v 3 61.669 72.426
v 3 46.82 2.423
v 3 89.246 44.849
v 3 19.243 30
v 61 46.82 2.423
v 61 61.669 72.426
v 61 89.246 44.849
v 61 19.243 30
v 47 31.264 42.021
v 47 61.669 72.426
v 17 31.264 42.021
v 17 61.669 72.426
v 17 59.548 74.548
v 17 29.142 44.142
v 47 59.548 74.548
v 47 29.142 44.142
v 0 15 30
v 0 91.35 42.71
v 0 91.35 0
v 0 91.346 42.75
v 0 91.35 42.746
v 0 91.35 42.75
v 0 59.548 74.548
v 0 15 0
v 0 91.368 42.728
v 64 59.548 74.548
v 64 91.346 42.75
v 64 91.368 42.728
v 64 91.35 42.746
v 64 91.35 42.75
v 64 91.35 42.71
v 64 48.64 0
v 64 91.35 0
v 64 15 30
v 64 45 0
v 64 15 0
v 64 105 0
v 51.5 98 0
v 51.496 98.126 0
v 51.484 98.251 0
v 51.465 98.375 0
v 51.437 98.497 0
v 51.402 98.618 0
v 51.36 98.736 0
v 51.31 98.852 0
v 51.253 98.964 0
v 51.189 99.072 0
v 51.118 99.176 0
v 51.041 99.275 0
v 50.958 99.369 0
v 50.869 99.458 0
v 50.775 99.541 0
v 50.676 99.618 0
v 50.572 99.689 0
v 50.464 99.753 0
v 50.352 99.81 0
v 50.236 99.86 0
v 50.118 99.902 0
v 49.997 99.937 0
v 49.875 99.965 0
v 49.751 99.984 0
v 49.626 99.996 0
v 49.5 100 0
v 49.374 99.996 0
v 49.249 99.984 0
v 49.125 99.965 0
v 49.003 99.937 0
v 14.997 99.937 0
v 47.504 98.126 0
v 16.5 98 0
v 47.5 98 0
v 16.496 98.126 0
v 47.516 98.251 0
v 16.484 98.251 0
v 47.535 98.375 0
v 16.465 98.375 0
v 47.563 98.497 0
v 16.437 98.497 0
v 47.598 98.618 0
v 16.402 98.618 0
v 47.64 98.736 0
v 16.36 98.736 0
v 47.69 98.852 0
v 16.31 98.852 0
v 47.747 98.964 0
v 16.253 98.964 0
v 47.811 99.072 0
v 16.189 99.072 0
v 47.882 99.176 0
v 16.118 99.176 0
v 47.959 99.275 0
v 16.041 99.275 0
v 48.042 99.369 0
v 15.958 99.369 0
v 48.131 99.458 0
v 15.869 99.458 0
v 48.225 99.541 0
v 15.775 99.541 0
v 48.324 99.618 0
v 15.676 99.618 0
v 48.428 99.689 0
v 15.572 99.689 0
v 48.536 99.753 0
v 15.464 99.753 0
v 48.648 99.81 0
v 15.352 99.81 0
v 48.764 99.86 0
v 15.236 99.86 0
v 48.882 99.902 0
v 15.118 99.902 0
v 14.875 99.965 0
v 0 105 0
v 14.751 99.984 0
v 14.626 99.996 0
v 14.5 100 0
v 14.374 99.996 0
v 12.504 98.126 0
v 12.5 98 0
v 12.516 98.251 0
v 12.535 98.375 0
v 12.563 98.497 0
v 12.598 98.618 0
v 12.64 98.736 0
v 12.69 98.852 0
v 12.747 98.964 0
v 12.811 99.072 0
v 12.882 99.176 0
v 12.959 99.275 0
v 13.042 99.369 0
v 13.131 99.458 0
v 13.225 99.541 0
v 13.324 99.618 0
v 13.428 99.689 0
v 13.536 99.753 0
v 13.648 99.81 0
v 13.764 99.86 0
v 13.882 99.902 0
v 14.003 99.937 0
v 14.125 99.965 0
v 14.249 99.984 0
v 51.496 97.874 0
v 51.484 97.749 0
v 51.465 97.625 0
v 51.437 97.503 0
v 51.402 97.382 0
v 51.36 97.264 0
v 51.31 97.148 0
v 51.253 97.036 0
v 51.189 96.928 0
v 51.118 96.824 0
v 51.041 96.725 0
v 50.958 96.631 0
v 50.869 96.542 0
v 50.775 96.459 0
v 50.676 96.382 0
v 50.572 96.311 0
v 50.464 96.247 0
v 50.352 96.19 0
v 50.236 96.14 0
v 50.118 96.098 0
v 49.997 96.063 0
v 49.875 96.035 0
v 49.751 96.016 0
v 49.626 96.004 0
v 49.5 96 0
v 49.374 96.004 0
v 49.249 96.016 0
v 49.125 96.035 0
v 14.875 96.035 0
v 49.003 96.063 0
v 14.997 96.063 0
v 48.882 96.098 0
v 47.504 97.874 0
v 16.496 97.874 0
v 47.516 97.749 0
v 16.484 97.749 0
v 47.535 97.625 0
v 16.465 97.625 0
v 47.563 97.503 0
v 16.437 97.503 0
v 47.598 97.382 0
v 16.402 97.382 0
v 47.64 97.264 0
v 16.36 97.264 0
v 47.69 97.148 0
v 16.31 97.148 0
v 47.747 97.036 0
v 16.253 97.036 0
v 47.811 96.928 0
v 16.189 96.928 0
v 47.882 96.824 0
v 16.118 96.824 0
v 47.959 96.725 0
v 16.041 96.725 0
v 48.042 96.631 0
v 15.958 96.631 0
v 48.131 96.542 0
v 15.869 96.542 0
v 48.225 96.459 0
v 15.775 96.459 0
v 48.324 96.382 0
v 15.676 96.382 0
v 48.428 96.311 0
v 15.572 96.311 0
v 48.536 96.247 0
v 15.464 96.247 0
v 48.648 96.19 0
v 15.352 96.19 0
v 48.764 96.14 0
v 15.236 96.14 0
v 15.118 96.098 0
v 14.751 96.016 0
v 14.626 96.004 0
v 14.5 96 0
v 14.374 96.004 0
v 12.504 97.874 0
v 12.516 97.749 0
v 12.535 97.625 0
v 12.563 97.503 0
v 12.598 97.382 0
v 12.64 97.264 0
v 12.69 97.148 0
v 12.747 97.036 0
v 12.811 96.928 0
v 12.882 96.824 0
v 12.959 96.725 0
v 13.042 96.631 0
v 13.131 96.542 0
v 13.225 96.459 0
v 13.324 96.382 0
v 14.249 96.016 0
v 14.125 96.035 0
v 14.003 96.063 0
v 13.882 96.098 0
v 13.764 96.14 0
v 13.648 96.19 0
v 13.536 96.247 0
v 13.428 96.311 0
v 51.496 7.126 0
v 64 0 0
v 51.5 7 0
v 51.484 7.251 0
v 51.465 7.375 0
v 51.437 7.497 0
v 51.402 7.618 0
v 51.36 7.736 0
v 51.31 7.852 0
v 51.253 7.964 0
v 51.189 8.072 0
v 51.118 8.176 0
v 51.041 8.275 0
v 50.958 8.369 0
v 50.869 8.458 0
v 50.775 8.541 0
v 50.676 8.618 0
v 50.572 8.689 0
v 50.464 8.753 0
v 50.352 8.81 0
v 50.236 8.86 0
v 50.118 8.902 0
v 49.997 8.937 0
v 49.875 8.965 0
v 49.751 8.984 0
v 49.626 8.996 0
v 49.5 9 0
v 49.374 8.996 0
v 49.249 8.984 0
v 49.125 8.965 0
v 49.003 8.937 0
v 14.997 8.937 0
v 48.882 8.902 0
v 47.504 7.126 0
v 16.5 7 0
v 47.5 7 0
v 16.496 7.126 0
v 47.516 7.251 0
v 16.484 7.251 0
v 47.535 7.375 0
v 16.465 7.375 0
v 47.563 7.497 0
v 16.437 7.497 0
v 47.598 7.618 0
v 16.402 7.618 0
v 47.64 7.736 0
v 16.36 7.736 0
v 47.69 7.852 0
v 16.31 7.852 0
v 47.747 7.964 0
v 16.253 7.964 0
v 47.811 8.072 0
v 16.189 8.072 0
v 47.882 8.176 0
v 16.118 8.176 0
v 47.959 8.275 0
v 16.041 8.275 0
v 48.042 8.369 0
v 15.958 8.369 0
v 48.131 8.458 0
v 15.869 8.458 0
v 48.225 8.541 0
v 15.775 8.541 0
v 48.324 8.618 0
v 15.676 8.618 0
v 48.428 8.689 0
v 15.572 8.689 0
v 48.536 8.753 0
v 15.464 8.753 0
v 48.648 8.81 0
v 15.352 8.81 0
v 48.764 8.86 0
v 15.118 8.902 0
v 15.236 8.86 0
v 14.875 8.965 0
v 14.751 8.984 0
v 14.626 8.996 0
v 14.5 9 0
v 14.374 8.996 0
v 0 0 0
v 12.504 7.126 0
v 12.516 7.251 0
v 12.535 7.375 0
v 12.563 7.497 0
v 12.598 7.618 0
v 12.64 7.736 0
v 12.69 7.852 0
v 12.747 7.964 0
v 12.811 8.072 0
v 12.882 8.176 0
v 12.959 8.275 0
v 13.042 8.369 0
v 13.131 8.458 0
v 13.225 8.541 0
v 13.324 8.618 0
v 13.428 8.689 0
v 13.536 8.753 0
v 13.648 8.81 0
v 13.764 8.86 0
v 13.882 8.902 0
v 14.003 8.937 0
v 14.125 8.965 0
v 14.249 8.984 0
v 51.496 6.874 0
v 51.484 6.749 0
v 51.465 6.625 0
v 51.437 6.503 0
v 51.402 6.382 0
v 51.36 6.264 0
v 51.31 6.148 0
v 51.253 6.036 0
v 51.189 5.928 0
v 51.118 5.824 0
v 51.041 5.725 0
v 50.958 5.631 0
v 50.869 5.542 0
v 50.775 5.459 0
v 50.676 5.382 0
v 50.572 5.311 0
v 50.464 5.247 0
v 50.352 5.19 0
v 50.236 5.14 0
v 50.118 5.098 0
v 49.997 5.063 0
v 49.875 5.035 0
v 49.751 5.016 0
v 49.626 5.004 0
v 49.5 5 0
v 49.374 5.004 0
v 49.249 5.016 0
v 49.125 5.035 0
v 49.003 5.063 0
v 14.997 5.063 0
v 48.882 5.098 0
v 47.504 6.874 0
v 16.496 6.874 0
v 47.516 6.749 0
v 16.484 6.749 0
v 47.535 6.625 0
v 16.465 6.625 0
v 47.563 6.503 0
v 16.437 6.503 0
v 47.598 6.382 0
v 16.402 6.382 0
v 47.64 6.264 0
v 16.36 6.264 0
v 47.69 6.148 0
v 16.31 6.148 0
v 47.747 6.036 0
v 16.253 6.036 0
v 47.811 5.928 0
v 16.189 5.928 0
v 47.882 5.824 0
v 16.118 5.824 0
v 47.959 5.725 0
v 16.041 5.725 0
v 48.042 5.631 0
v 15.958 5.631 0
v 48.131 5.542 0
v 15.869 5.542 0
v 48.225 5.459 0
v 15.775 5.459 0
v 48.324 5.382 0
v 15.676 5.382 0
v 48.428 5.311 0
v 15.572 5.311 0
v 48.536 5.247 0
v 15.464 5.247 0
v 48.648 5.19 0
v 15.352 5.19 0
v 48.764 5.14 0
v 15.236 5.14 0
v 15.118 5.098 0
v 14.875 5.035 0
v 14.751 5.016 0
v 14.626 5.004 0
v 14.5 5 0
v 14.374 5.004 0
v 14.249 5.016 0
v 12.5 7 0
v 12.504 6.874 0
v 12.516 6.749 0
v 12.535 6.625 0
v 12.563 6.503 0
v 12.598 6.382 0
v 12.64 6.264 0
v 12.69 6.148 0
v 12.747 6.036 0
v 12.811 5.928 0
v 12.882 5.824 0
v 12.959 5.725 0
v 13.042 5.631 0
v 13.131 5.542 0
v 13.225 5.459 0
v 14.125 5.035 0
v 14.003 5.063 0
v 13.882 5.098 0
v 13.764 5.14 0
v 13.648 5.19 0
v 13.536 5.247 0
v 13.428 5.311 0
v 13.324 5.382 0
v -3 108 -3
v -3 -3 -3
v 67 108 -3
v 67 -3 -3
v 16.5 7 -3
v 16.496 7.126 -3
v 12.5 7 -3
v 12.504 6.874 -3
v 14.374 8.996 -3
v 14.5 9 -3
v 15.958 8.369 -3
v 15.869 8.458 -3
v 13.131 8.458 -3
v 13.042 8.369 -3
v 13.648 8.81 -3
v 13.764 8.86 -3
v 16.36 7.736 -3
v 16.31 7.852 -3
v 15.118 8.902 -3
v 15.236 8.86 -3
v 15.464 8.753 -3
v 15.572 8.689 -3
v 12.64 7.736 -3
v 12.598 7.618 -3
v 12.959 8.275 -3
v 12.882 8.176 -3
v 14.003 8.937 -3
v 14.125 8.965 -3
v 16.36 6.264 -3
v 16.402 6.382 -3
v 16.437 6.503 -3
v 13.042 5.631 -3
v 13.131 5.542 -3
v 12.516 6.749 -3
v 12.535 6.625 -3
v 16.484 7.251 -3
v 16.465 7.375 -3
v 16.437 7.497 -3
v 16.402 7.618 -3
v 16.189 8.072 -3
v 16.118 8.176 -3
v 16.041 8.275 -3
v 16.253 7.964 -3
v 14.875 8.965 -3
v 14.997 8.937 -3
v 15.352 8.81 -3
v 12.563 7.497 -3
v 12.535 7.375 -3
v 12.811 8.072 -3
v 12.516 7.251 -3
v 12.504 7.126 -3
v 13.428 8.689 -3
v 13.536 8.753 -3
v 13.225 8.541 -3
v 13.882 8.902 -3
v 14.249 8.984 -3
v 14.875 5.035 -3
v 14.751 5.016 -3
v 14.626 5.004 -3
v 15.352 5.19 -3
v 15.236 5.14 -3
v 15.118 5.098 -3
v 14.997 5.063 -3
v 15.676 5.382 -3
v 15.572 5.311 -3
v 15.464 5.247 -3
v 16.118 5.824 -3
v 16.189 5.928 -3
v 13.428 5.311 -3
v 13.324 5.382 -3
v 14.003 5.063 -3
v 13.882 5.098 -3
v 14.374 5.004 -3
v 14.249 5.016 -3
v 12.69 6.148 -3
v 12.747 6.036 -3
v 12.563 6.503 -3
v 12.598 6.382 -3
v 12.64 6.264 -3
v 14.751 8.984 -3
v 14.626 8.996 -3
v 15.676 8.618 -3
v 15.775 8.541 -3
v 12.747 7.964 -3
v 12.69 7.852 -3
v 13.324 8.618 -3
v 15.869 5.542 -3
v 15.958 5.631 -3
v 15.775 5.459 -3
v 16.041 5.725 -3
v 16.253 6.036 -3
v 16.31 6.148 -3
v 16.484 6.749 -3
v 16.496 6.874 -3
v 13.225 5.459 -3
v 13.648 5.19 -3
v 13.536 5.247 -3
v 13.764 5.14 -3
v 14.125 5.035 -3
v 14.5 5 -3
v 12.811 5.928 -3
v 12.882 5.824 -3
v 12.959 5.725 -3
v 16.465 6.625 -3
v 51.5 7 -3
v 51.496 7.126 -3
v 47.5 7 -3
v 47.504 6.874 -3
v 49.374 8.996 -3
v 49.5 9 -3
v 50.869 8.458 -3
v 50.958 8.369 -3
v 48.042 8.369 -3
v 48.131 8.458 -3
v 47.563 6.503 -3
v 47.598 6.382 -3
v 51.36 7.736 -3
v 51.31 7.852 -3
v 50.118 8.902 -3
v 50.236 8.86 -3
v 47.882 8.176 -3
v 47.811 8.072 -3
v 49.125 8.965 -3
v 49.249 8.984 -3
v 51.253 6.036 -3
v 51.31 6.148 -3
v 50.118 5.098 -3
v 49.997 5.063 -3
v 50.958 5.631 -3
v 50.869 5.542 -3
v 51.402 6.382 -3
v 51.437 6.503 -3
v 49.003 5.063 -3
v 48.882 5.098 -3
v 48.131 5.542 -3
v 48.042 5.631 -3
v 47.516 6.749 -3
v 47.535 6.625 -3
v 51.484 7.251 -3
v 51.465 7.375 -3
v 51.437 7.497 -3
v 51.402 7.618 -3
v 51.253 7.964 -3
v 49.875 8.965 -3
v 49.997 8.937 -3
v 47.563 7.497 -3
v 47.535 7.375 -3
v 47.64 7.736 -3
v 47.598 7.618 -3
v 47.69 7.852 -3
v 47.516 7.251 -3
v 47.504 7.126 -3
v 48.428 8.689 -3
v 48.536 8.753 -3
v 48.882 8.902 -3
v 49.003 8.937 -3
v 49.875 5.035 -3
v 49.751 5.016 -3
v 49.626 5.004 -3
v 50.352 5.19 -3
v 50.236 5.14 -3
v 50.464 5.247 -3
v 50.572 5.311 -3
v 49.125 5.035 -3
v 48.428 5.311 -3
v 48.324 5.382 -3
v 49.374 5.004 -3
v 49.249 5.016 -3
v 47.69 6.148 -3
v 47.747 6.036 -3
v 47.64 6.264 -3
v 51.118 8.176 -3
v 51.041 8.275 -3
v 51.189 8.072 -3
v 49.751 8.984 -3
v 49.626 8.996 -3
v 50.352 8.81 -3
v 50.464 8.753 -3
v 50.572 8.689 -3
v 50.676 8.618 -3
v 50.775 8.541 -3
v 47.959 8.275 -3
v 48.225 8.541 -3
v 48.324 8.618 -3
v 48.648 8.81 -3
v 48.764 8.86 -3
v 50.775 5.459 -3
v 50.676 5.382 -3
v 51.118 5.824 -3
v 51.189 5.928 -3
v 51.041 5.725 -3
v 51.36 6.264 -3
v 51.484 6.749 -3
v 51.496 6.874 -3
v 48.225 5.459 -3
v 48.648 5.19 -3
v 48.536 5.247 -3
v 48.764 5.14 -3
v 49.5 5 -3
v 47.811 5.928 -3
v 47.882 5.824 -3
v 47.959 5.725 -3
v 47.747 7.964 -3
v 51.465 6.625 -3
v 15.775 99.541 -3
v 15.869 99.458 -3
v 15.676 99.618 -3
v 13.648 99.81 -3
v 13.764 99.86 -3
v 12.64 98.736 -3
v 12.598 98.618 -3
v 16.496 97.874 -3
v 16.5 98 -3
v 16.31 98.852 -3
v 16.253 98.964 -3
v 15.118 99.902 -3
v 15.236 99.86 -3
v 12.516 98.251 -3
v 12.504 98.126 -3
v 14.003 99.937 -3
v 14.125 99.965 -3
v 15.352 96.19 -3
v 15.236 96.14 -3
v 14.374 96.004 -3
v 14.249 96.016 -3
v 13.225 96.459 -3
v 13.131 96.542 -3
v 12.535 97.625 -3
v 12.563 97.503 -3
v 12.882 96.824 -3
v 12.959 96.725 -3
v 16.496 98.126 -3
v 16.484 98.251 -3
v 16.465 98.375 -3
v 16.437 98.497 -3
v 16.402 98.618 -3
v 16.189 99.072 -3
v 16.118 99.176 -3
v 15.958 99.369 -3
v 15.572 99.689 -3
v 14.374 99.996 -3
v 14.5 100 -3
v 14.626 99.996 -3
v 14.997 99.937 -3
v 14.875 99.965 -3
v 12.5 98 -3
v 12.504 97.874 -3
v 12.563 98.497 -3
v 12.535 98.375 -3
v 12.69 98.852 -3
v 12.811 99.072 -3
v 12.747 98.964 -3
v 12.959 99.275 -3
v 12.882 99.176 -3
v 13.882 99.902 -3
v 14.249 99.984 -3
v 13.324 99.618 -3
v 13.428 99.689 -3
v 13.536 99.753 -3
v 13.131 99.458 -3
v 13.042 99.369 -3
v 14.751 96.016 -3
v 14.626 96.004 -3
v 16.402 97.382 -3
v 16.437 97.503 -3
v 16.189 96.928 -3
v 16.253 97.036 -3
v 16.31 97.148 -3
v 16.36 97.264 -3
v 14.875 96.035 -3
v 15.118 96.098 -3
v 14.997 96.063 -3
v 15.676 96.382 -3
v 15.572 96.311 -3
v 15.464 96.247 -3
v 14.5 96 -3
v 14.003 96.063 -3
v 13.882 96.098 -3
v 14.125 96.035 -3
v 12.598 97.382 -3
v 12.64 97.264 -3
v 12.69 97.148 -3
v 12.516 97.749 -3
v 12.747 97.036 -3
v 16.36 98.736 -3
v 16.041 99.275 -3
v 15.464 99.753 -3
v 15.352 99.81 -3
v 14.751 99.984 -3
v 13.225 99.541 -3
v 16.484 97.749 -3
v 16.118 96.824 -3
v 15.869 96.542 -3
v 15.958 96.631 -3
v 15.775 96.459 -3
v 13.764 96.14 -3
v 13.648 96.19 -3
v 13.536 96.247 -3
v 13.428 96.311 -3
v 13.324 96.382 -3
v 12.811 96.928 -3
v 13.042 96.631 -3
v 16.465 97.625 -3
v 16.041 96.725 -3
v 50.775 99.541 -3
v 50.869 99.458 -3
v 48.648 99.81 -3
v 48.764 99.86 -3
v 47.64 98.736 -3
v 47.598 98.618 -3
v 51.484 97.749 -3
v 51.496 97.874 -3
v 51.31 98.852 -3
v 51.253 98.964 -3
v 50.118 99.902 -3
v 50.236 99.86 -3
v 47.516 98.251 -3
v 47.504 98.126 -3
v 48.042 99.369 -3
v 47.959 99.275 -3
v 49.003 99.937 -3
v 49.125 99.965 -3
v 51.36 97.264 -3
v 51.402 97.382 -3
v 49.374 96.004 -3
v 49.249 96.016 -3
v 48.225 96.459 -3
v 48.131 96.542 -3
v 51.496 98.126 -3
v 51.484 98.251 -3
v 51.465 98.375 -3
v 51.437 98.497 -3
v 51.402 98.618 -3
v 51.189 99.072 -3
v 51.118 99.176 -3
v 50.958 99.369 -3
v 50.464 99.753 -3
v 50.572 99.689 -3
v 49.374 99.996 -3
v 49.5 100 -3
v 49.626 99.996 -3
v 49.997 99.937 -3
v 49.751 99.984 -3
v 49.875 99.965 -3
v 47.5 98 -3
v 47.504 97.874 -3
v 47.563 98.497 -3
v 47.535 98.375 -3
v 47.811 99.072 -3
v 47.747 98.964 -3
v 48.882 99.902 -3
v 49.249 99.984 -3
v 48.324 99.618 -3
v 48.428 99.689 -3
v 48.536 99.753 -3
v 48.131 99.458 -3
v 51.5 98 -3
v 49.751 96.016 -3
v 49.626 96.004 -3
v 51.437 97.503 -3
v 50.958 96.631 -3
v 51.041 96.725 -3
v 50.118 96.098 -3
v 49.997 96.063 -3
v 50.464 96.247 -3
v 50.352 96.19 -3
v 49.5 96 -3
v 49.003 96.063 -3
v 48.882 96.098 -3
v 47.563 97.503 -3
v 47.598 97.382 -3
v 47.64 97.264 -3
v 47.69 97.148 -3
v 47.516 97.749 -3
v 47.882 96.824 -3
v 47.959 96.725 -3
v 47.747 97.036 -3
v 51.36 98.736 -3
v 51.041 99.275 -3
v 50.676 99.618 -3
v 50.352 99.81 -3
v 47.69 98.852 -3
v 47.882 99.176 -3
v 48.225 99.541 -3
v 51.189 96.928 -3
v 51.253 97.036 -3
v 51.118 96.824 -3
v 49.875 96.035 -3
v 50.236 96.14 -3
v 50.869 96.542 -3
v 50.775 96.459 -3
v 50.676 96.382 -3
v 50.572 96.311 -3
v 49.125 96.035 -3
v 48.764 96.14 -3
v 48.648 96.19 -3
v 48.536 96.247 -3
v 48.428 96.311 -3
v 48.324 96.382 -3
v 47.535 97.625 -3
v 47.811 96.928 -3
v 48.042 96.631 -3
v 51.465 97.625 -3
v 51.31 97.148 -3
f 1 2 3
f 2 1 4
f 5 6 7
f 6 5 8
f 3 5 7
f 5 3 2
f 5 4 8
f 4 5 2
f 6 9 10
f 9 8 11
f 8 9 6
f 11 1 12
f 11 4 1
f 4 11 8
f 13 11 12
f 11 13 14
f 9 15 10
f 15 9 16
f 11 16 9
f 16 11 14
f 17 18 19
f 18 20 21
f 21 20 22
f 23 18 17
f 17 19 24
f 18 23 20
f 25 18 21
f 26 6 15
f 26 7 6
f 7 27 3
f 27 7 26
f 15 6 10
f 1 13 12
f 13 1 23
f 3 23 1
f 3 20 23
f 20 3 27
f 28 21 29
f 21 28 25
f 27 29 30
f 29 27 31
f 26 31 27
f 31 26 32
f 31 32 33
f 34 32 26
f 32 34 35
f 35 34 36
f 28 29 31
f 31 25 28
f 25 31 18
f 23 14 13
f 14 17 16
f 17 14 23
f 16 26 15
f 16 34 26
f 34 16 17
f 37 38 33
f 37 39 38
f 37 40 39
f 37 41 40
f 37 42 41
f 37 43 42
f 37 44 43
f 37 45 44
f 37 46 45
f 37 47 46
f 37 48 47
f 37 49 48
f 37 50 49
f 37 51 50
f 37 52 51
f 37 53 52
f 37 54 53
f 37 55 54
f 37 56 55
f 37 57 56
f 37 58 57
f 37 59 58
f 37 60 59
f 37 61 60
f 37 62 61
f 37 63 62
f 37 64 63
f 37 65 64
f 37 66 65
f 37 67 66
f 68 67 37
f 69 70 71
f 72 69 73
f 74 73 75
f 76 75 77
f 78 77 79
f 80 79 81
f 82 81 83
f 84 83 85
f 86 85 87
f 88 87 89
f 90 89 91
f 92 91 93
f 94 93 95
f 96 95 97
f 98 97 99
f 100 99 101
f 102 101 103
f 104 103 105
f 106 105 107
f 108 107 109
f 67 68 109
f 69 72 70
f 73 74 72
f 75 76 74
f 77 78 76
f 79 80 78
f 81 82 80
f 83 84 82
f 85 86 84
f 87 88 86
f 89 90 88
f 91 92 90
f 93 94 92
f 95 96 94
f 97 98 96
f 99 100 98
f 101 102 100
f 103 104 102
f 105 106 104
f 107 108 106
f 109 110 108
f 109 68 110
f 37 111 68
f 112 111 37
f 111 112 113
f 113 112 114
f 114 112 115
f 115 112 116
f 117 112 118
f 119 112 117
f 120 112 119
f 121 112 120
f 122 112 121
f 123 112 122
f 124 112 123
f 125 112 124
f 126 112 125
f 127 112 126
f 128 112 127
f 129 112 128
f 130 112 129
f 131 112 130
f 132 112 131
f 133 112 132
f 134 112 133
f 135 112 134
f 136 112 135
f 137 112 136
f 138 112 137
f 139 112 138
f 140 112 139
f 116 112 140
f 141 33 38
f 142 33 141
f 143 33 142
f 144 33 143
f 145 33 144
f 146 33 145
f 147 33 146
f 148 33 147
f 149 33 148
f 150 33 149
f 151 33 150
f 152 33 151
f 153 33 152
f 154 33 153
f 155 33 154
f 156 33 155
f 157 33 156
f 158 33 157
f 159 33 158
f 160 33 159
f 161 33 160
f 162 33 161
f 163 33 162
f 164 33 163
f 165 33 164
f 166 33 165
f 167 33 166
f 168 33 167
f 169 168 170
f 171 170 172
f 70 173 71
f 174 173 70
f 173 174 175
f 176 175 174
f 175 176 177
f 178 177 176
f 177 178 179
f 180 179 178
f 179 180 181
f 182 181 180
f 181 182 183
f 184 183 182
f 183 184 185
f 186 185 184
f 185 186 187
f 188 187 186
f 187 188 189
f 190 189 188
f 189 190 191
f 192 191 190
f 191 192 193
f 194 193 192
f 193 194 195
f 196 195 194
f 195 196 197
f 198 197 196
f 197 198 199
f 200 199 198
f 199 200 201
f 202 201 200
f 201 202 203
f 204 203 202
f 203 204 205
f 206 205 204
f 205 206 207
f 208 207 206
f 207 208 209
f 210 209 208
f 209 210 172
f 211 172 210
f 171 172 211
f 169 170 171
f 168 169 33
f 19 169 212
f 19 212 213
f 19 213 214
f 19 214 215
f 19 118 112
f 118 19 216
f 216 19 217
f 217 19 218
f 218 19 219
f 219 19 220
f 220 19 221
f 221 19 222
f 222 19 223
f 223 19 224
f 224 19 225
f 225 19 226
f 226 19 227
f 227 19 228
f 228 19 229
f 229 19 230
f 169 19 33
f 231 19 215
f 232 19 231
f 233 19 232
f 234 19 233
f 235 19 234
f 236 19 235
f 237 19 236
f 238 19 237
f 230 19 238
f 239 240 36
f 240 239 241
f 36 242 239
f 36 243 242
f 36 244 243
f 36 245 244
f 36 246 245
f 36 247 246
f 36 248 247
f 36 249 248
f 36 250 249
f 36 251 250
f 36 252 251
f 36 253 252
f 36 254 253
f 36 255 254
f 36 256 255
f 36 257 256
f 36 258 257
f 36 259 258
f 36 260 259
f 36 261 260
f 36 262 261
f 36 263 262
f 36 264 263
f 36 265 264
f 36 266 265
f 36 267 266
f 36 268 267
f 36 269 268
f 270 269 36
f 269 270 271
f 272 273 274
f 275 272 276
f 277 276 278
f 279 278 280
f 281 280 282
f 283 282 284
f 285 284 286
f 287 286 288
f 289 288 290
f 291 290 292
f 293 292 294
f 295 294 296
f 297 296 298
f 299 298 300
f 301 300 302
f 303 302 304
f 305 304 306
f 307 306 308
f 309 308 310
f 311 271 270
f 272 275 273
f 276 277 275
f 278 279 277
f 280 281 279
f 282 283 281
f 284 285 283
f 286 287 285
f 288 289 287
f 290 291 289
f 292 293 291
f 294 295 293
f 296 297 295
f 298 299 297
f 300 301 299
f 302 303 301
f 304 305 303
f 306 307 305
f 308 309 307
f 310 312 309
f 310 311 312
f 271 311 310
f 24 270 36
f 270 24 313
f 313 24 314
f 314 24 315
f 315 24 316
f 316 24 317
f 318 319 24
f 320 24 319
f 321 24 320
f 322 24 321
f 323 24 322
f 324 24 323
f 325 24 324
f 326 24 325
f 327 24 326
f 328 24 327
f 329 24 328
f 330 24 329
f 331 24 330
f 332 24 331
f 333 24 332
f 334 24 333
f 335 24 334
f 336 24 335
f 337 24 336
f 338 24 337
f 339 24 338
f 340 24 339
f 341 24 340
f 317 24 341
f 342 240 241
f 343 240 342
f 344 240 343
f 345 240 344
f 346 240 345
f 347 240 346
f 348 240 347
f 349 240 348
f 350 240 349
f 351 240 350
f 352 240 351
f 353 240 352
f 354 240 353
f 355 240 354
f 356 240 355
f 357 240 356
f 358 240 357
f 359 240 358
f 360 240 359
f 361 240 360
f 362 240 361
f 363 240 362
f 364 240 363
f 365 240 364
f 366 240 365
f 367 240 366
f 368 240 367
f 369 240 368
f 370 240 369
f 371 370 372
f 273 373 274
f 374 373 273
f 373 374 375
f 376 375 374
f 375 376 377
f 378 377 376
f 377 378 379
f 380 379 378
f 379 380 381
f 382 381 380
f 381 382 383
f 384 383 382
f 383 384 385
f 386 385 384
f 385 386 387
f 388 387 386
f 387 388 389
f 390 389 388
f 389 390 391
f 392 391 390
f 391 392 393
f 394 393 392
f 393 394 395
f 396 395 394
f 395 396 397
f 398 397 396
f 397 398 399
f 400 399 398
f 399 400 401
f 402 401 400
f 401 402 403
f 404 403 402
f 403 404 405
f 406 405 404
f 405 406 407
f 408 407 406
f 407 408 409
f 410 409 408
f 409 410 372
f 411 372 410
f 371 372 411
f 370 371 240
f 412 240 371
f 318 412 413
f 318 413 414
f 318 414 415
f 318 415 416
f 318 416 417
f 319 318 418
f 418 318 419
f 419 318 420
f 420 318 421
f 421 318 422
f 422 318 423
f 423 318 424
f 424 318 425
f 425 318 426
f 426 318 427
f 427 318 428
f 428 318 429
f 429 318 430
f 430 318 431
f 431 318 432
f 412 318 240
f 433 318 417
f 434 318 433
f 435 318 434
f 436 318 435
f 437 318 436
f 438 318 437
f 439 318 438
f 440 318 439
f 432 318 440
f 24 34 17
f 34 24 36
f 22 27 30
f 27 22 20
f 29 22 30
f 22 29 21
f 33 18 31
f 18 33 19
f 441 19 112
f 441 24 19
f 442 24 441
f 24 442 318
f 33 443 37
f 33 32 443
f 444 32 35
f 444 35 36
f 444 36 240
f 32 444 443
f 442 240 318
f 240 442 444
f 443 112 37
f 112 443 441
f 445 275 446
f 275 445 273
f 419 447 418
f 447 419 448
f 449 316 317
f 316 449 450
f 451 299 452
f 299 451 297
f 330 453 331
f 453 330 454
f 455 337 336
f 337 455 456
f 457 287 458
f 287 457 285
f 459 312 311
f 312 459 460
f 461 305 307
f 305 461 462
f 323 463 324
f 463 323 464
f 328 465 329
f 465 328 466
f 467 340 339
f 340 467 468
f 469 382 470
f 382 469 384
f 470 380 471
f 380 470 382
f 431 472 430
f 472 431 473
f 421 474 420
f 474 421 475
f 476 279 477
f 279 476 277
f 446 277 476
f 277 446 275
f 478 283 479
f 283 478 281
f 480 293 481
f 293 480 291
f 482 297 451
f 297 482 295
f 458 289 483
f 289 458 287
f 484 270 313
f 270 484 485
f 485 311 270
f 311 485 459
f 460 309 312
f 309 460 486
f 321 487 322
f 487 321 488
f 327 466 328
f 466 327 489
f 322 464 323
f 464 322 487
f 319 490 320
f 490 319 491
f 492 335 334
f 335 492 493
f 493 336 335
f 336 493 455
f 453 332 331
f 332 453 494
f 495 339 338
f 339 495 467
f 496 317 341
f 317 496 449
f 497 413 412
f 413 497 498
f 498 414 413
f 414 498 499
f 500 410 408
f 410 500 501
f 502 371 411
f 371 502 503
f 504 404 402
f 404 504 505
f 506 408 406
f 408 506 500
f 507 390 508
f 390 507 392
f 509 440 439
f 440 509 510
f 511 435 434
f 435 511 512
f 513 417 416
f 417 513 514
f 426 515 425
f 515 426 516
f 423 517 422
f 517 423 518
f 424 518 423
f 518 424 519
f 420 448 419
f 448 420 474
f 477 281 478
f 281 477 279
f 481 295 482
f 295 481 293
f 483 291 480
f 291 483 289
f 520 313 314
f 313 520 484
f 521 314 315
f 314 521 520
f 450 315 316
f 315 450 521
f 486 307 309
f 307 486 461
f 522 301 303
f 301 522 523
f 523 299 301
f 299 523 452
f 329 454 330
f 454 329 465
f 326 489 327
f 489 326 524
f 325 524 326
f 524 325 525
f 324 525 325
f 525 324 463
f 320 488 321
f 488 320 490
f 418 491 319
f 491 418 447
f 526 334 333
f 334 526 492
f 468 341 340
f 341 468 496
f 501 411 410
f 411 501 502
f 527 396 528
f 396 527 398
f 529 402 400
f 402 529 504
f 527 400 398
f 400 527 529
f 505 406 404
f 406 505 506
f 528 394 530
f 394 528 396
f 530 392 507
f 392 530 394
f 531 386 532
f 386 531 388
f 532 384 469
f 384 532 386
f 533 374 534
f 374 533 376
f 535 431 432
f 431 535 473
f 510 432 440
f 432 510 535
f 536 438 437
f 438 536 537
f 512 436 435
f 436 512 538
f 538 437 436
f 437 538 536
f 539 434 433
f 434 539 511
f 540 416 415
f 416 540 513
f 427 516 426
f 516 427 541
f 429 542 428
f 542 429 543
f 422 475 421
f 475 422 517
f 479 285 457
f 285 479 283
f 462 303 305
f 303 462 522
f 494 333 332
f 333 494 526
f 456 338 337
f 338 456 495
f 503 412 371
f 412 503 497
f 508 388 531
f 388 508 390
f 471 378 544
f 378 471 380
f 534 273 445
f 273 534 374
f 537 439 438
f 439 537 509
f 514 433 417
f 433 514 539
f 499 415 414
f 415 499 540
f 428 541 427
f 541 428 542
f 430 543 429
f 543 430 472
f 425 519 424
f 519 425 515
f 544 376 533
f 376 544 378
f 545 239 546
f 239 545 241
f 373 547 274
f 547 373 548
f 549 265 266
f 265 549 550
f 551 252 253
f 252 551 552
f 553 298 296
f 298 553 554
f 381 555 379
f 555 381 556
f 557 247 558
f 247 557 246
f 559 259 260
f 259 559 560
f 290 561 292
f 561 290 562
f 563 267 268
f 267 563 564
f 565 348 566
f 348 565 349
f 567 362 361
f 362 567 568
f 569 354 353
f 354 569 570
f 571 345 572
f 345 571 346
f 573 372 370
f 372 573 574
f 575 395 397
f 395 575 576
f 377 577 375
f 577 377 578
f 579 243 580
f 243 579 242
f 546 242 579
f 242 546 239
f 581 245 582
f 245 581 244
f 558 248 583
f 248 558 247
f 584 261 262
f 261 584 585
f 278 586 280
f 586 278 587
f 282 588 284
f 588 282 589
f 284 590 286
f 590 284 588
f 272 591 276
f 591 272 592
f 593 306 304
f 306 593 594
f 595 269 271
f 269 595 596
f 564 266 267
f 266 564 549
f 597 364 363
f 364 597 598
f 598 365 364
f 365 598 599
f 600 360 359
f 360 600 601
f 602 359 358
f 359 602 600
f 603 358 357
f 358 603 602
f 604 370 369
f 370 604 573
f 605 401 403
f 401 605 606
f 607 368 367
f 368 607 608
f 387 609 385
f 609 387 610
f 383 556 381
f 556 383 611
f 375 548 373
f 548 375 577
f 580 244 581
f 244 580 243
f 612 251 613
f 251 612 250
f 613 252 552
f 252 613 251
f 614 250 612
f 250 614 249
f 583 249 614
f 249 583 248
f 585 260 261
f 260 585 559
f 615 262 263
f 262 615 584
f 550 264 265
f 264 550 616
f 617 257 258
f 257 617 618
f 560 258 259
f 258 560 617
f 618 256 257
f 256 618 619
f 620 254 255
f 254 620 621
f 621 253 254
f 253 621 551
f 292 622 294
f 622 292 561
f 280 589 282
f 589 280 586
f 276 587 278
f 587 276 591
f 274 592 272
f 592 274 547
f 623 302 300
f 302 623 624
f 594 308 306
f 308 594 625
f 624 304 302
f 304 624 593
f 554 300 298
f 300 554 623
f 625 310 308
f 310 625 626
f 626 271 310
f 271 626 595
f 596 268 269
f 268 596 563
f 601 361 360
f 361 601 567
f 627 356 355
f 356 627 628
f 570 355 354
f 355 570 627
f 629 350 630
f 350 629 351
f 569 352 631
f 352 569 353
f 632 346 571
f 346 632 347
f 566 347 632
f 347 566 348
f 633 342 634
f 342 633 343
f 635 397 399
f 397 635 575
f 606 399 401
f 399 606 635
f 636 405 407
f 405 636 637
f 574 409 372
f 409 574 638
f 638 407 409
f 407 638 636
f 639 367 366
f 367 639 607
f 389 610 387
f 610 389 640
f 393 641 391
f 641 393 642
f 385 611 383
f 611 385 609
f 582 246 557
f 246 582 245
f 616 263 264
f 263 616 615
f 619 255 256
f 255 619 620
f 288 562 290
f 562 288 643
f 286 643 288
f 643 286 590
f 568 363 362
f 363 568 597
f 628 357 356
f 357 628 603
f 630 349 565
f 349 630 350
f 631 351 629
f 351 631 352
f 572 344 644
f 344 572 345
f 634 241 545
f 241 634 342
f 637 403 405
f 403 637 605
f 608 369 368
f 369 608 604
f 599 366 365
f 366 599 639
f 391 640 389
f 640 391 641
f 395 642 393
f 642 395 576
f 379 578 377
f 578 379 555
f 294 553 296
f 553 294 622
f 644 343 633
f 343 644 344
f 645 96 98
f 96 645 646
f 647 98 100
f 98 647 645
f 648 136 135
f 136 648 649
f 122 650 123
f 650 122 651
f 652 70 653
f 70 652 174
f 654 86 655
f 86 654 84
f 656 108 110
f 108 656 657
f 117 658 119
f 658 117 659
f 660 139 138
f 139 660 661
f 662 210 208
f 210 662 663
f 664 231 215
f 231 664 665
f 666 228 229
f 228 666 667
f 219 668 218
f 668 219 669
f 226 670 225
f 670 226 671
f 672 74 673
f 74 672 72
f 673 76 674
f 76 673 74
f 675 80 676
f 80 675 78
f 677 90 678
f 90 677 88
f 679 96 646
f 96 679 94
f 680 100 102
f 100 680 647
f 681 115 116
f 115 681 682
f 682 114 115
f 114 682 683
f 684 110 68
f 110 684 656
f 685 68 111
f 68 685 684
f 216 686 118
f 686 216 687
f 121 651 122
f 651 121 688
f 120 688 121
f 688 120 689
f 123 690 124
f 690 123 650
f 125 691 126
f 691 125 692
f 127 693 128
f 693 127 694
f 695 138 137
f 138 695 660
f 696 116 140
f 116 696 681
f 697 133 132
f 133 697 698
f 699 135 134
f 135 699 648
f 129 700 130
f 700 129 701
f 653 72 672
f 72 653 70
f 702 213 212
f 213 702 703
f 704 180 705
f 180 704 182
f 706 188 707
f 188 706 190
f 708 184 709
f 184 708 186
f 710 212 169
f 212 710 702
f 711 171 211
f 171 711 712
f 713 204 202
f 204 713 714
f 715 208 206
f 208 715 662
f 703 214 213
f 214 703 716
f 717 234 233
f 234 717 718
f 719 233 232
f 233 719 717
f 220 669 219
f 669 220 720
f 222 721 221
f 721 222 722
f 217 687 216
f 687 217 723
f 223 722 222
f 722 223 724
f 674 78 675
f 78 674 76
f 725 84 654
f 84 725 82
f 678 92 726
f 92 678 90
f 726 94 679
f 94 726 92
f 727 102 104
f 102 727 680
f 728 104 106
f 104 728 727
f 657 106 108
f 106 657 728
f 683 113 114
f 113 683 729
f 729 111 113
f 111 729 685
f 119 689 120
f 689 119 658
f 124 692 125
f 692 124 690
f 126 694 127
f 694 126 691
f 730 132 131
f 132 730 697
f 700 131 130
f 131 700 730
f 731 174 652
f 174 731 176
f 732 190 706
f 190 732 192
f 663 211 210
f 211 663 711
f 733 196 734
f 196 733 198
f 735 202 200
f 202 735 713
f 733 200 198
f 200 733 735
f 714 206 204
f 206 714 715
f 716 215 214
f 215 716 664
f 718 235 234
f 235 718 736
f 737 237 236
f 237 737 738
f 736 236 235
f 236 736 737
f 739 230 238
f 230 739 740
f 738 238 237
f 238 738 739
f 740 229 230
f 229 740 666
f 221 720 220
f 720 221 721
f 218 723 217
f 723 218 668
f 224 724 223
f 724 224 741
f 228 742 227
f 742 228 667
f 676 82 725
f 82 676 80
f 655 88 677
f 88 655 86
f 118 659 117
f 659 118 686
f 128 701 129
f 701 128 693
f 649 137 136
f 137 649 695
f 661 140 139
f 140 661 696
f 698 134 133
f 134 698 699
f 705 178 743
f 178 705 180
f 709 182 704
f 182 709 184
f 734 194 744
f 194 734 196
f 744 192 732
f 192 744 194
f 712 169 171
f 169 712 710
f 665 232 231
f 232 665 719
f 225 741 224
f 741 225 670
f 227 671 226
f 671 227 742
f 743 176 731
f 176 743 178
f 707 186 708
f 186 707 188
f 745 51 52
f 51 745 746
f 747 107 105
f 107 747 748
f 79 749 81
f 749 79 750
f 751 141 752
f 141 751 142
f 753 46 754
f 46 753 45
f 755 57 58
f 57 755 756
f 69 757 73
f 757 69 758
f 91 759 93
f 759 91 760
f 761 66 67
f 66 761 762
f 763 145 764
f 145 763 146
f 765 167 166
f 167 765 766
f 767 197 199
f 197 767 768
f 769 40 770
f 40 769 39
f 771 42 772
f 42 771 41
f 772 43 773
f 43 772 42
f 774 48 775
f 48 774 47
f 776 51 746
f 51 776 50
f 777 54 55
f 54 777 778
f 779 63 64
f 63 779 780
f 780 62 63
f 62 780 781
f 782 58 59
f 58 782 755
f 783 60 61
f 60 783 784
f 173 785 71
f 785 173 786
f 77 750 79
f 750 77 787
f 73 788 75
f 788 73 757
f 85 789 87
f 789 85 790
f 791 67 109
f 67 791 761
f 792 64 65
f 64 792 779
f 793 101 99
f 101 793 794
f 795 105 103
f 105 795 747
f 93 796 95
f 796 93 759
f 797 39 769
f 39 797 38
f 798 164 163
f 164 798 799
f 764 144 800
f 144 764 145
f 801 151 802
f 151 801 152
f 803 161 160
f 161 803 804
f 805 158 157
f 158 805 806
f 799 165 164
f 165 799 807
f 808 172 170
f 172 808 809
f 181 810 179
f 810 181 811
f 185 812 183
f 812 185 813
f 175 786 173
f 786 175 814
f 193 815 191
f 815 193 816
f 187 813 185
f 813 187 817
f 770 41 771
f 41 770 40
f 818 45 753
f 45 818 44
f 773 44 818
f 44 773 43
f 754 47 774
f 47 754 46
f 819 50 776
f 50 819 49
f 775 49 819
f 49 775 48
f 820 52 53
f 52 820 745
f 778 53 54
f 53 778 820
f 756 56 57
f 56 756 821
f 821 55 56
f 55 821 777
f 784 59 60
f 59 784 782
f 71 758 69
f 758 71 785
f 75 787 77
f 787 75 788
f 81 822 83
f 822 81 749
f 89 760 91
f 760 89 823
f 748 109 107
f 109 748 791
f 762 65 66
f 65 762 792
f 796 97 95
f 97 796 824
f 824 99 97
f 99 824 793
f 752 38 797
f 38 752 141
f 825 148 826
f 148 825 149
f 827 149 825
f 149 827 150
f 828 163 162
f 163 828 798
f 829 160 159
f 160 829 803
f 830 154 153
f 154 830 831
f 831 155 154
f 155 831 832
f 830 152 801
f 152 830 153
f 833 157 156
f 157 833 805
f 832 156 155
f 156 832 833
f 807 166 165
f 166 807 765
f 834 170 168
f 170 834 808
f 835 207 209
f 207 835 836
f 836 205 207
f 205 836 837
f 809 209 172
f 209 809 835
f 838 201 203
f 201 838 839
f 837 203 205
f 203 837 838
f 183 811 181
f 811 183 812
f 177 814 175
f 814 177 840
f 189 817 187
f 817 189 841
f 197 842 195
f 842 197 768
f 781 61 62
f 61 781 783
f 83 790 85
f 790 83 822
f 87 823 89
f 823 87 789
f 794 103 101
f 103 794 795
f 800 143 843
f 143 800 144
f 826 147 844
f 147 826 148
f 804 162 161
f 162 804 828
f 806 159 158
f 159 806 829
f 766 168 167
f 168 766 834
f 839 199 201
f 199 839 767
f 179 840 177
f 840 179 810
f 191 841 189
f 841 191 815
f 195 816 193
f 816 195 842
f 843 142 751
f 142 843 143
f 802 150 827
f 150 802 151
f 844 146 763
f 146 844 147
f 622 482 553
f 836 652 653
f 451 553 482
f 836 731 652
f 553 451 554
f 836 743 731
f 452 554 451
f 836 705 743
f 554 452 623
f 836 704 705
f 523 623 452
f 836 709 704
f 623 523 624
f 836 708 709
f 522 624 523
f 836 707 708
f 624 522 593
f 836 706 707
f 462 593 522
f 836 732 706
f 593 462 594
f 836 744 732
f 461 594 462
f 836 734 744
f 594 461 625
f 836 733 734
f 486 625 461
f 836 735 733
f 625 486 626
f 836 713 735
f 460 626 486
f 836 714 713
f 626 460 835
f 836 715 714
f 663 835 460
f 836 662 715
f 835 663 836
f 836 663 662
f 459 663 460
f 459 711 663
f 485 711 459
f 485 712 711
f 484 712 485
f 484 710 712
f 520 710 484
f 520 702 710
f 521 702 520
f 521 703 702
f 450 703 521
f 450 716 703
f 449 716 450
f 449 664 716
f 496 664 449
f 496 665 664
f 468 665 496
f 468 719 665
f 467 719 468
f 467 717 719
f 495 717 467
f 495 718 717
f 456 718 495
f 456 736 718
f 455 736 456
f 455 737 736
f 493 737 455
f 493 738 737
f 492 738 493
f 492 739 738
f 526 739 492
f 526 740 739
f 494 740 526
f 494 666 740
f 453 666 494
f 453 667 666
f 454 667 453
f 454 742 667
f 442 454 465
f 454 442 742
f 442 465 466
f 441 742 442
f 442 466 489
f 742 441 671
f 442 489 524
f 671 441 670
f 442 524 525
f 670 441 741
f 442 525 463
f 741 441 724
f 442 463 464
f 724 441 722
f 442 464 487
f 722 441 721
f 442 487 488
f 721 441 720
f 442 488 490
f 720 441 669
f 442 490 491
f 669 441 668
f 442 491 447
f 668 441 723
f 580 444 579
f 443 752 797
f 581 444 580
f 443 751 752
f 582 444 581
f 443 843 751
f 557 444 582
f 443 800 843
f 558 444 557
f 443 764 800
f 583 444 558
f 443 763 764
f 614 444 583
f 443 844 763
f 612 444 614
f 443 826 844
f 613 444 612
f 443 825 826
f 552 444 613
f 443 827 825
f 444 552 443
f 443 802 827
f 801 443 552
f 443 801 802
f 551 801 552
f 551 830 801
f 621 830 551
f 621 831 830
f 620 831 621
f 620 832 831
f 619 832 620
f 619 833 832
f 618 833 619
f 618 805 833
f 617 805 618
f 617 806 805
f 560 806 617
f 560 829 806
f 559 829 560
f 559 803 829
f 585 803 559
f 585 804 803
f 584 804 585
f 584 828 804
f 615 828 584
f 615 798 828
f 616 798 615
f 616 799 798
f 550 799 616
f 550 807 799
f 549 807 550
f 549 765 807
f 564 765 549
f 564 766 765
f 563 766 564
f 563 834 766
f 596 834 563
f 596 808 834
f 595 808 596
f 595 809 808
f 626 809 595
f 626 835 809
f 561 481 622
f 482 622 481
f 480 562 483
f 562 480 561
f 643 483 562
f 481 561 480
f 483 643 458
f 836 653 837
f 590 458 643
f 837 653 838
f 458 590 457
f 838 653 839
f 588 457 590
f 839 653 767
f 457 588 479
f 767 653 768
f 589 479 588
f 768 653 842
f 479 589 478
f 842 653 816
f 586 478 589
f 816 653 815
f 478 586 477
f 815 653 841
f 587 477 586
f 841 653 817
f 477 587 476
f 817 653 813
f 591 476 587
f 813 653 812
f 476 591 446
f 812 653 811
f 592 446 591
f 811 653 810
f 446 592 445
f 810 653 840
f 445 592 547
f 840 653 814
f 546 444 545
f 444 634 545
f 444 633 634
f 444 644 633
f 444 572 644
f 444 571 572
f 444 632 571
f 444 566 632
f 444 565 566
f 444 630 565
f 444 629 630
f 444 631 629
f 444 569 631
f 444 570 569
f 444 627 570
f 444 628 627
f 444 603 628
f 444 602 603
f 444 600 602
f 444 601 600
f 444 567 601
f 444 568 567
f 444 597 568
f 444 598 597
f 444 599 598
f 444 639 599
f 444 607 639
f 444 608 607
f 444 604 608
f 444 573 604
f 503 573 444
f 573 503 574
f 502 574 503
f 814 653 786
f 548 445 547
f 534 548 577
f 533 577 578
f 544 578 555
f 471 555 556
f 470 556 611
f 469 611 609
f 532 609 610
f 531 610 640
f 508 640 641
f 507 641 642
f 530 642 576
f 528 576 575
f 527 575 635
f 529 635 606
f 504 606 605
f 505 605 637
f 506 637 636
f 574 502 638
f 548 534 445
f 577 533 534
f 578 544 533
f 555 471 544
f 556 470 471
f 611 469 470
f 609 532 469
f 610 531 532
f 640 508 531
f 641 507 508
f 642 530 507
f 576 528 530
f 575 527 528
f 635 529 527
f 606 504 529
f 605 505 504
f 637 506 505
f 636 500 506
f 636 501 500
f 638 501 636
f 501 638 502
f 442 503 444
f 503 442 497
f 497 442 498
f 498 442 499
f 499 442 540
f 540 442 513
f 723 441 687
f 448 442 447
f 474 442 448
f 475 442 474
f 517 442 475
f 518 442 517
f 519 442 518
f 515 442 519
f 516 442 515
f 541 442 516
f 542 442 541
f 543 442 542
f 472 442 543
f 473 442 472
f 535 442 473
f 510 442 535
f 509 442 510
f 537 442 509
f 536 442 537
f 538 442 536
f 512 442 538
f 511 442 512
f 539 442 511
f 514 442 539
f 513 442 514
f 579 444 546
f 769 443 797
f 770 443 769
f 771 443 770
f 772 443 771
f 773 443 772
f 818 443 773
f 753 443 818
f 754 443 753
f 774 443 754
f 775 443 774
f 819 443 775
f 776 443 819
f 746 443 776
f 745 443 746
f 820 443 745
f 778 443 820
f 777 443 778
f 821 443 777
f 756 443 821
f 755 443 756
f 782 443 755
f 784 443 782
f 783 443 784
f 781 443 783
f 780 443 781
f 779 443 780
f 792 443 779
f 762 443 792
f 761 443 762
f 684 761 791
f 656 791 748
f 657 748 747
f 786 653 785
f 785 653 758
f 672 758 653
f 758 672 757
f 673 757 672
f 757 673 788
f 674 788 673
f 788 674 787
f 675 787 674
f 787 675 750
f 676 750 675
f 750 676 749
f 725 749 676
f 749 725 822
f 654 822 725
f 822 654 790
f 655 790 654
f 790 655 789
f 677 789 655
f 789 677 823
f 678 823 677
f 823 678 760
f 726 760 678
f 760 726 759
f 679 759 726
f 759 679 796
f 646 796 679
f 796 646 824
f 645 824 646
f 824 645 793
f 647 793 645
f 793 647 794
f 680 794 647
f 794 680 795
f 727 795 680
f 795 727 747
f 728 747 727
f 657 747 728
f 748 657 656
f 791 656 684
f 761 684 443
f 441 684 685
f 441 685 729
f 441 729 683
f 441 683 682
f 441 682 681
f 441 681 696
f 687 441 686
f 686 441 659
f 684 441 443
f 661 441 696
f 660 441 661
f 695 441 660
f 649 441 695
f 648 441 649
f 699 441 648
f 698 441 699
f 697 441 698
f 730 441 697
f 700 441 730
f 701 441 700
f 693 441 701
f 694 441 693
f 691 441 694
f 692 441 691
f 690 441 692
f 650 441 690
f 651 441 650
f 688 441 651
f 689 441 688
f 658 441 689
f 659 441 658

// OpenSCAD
//Decibel Reader Holder

width = 54;
depth = 35;
height = 60;
buffer = 2;
thickness = 3;
screwDiam = 4;

bpWidth = 70;
bpHeight = 111;

module backplate(){
    difference(){
        union(){
            cube([bpWidth, bpHeight, thickness]);
        }
    
        union(){
            translate([0, 0, 0])
            rotate([0, -45, 0])
            cube([thickness * 2, bpHeight, thickness * 2]);
            translate([bpWidth, 0, 0])
            rotate([0, -45, 0])
            cube([thickness * 2, bpHeight, thickness * 2]);
            
            translate([0, 0, 0])
            rotate([45, 0, 0])
            cube([bpWidth, thickness*2, thickness * 2]);
            translate([0, bpHeight, 0])
            rotate([45, 0, 0])
            cube([bpWidth, thickness*2, thickness * 2]);
            
            translate([bpWidth/4, 10])
            cylinder(10, screwDiam/2, screwDiam/2, $fn = 100, true);
            translate([3*bpWidth/4, 10])
            cylinder(10, screwDiam/2, screwDiam/2, $fn = 100, true);
            
            translate([bpWidth/4, bpHeight - 10])
            cylinder(10, screwDiam/2, screwDiam/2, $fn = 100, true);
            translate([3*bpWidth/4, bpHeight - 10])
            cylinder(10, screwDiam/2, screwDiam/2, $fn = 100, true);
        }
    }
}

module cradle(){
    difference(){
        union(){
            cube([width + 2*(buffer + thickness),
                  depth + 2*(buffer + thickness),
                  height + thickness]);
        }
        
        union(){
            translate([thickness, thickness, thickness])
            cube([width + 2*buffer, depth + 2*buffer, height + buffer]);
            
            translate([(width + 2*(buffer + thickness))/2, 1, 70])
            cube([30, thickness + 2, 100], true);
        }
    }
}

module cradleFULL(){
    cube([width + 2*(buffer + thickness),
        depth + 2*(buffer + thickness),
        height + thickness]);
}







module main(){
    
    translate([-thickness, -thickness, -thickness])
    backplate();
    
    translate([0, 15, 0]){
    translate([0, 0, 30])
    rotate([-45, 0, 0])
    cradle();
    
    difference(){
        
        union(){
            translate([0, 0, 0])
            cube([64, 30, 30]);
            translate([0, 30, 0])
            cube([64, 46.35, 42.75]);
        }
        
        union(){
            translate([0, 0, 30])
            rotate([-45, 0, 0])
            cradleFULL();
        }
    }
}
    
    
    
}main();
